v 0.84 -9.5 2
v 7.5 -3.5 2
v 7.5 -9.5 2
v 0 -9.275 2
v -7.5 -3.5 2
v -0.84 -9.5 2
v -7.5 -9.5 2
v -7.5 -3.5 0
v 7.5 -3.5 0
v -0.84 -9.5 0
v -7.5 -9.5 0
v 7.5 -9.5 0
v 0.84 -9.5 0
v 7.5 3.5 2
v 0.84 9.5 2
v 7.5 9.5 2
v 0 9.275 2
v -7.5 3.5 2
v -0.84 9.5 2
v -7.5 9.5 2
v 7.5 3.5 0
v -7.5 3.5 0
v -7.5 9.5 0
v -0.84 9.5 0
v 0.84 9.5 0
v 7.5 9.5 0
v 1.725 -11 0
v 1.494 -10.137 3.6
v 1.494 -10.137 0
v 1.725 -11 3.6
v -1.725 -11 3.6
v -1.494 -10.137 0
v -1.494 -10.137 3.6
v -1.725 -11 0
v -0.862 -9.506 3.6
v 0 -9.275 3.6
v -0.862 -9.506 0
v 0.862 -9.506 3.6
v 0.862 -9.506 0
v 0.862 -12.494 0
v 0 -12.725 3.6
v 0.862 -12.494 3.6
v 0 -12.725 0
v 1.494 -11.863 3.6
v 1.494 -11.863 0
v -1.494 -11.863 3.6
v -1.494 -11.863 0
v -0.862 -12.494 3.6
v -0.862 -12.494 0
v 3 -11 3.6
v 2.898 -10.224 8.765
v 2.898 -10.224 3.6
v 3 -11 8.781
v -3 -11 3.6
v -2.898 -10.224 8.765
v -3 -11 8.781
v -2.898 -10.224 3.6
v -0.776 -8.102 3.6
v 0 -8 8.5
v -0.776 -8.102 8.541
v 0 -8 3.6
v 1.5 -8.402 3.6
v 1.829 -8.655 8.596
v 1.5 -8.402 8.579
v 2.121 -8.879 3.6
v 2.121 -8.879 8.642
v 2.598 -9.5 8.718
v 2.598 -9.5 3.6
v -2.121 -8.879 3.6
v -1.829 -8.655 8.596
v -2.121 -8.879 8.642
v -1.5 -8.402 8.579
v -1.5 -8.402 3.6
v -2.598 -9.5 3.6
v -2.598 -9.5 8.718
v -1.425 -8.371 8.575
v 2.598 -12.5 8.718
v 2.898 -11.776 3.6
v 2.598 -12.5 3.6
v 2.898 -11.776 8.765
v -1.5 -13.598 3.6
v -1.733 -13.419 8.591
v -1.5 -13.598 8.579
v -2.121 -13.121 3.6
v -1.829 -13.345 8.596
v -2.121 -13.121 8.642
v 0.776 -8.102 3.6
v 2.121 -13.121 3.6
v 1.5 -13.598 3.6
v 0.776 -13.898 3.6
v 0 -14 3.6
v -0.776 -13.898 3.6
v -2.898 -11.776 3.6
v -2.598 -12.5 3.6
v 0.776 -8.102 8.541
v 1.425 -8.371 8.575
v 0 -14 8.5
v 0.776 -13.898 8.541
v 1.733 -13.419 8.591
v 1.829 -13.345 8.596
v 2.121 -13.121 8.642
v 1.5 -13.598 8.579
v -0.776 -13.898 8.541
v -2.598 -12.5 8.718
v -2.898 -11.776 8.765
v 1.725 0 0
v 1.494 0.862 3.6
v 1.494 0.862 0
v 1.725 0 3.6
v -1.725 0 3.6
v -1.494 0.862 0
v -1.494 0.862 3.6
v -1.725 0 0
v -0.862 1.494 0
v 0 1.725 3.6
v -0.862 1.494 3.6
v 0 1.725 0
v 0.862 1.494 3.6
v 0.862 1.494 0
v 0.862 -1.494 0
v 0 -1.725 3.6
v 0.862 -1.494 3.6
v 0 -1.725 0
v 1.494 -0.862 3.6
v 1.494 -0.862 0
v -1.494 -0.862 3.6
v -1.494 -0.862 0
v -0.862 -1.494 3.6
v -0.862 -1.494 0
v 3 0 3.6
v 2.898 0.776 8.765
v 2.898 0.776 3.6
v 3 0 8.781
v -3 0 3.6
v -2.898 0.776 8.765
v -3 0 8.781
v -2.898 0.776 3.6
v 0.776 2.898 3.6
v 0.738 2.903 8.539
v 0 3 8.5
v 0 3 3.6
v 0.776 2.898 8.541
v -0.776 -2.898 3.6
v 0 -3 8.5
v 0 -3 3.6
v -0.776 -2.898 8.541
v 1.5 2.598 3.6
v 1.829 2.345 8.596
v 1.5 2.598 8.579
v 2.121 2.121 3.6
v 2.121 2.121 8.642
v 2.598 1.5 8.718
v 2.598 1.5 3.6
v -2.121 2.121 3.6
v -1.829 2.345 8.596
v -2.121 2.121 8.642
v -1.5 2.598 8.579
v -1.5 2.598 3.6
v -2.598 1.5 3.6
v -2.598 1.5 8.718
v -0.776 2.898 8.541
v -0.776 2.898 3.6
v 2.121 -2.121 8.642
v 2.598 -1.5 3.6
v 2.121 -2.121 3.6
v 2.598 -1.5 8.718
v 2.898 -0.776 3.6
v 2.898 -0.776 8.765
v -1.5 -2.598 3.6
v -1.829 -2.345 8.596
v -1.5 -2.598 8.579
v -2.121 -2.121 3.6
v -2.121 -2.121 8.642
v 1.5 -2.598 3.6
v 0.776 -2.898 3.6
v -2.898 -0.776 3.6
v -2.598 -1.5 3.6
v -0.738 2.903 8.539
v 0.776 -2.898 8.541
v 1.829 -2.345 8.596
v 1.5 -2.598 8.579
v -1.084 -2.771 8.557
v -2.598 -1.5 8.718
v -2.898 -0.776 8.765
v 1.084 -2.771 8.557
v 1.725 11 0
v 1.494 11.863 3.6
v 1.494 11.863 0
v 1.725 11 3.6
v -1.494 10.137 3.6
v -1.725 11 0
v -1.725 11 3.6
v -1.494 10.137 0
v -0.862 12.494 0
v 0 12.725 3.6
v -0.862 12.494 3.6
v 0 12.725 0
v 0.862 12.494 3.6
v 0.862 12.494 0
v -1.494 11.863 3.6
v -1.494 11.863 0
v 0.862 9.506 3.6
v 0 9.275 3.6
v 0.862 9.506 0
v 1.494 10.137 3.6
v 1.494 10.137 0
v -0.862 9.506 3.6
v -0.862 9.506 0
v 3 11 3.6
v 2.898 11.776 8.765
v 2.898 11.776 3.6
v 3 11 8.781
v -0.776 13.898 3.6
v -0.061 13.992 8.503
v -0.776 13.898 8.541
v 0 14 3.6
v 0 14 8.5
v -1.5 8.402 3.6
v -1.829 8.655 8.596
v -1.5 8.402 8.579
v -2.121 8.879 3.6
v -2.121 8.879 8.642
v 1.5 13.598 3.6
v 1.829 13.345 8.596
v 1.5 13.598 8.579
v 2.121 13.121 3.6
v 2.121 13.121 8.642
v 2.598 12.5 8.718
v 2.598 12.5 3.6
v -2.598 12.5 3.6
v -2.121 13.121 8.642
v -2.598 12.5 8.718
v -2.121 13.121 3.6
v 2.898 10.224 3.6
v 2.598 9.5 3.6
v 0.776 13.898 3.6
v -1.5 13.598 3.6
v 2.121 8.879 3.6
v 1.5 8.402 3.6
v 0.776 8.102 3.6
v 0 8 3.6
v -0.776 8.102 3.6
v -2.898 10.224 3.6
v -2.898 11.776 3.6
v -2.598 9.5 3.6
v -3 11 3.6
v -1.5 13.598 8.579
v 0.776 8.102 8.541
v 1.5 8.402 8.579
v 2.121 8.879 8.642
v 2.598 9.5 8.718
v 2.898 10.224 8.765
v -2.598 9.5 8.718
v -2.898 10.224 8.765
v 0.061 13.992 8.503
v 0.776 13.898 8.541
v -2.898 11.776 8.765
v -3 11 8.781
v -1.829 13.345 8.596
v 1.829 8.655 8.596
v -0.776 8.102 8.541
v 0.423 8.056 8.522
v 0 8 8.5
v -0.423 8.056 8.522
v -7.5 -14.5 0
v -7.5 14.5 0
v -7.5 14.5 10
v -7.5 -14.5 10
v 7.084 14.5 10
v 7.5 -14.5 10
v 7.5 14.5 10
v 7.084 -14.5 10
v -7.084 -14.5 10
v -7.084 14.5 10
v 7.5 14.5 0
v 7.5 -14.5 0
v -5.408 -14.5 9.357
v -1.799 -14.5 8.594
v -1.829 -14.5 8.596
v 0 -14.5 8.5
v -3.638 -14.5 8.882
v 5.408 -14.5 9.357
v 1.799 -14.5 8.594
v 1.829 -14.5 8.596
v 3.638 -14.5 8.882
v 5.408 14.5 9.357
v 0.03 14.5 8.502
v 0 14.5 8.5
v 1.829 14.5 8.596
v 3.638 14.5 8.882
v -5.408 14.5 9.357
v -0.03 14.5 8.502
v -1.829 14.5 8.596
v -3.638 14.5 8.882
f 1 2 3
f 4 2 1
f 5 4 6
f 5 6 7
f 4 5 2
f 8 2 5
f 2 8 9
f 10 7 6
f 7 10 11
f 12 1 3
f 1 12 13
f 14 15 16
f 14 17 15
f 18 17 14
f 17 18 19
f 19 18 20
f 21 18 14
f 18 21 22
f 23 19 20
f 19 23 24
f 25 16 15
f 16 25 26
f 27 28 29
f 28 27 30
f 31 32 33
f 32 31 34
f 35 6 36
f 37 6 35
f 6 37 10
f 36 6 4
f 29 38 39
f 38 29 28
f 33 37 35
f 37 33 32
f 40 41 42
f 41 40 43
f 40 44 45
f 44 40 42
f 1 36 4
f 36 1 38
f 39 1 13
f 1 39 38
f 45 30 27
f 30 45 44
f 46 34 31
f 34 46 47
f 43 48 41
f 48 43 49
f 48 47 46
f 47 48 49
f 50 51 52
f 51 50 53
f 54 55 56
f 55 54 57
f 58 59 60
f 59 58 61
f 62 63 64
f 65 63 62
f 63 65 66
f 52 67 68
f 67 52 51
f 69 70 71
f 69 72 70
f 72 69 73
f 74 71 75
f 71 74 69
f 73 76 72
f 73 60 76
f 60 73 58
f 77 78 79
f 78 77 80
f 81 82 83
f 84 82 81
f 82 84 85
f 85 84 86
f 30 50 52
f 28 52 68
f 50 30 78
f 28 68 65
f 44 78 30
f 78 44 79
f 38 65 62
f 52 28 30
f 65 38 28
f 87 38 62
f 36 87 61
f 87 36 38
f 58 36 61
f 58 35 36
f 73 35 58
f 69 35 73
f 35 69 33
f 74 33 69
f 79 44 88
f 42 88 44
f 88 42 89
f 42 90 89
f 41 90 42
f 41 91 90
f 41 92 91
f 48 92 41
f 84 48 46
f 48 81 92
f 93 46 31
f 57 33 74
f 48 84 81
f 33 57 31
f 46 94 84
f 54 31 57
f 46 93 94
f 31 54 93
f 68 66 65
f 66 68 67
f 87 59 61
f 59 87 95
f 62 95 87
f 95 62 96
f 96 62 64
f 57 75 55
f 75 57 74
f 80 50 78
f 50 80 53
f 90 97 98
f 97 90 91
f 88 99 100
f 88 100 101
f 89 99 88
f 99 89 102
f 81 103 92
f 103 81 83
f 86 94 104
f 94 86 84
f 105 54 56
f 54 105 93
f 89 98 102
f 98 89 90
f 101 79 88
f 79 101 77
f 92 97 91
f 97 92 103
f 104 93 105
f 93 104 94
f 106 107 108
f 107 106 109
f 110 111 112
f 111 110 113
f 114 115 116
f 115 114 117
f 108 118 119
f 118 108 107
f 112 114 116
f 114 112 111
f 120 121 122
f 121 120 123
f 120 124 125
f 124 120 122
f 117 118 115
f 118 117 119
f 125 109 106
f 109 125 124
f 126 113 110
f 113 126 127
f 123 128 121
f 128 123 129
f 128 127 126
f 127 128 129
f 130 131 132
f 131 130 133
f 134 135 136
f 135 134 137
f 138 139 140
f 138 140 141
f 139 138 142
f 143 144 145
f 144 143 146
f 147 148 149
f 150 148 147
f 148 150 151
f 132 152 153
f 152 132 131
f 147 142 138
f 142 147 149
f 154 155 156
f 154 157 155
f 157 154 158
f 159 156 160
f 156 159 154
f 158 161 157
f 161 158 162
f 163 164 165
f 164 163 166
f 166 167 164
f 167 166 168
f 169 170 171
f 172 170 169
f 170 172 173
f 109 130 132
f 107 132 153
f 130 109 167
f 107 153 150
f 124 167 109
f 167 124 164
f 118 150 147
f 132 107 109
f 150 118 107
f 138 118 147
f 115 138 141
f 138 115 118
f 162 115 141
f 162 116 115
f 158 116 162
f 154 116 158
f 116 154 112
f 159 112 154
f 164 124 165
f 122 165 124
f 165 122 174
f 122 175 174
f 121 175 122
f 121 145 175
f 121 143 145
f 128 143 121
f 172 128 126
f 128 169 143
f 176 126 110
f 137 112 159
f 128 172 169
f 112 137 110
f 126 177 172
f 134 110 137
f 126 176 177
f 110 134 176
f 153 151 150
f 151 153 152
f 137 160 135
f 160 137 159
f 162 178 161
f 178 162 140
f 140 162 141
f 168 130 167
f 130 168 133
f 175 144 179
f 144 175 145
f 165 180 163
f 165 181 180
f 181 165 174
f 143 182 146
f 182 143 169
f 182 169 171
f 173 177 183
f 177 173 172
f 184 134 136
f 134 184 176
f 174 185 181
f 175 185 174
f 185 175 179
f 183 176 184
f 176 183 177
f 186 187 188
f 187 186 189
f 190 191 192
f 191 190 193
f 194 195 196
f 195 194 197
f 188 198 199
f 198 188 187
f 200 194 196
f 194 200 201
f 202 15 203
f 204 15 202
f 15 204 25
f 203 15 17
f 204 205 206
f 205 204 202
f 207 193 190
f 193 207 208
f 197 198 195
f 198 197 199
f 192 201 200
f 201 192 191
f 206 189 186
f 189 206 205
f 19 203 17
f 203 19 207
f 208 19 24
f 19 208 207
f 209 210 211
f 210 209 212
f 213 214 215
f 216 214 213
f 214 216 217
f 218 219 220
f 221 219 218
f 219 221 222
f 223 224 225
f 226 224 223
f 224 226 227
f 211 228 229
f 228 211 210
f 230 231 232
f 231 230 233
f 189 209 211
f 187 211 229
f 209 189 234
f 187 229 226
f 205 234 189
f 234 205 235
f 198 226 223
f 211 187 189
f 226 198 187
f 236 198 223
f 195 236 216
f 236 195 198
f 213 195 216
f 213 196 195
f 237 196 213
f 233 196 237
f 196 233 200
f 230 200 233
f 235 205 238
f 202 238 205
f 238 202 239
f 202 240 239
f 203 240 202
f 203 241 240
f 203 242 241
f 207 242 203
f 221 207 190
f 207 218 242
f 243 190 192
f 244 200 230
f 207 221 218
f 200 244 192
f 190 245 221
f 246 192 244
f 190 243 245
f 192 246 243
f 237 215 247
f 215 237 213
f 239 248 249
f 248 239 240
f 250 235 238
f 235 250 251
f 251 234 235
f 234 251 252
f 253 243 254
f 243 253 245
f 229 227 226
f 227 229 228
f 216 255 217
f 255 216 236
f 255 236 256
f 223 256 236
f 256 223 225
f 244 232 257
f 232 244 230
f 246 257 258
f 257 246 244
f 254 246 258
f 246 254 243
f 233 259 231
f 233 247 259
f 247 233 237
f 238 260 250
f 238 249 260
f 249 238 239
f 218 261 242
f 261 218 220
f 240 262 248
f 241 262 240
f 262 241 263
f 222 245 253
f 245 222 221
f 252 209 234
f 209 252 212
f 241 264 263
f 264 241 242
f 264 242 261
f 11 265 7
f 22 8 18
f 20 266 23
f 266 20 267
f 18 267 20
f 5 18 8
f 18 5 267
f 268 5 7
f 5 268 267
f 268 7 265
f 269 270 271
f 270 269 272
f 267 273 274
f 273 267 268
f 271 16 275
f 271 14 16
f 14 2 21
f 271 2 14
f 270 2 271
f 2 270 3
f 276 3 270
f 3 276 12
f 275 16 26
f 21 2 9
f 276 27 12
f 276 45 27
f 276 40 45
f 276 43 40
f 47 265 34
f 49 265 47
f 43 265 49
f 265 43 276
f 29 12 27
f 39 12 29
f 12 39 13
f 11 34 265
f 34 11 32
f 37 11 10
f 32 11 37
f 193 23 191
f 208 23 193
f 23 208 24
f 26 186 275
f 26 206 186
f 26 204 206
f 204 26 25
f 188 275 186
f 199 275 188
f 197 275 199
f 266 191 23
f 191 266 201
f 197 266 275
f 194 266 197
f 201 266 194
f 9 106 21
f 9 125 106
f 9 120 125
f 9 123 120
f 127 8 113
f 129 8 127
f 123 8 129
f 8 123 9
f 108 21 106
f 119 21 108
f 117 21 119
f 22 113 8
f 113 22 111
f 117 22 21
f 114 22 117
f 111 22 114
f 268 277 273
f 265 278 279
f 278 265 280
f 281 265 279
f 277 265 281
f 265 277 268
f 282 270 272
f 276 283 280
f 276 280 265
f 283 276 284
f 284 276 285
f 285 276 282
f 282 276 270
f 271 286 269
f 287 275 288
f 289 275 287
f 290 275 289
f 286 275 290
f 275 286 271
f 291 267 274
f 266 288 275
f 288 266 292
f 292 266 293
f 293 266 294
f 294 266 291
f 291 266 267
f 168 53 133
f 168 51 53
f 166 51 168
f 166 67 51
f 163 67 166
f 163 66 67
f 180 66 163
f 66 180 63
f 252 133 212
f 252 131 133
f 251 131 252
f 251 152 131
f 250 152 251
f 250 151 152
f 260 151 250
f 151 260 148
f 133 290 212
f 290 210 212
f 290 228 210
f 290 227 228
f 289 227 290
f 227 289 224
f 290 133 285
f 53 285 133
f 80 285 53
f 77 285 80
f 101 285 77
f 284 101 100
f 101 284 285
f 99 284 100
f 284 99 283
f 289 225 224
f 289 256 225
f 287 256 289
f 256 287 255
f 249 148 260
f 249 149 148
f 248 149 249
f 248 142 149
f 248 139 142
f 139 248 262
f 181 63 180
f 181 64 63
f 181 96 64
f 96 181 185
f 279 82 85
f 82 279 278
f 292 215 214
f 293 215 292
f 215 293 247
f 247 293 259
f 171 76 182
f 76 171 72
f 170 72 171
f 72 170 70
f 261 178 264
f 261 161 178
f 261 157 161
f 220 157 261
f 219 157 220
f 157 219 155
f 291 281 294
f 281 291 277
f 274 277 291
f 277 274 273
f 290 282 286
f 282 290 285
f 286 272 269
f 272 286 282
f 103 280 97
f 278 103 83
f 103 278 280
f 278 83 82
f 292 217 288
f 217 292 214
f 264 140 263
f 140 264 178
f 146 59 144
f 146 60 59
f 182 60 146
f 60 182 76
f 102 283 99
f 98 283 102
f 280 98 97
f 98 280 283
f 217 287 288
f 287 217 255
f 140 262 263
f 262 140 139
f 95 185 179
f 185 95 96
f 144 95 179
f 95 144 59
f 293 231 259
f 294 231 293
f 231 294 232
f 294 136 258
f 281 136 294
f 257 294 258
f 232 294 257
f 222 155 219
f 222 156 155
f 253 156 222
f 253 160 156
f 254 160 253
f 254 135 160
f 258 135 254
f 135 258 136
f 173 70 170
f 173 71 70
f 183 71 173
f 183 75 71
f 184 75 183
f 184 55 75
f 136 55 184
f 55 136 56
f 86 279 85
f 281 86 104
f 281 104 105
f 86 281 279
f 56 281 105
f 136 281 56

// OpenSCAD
// file: configuration.scad
/**
 * @author Johann Rocholl <johann@rocholl.net>
 * @license GPL-3.0
 */

// Increase this if your slicer or printer make holes too tight.
extra_radius = 0.1;

// OD = outside diameter, corner to corner.
m3_nut_od = 6.1;
m3_nut_radius = m3_nut_od/2 + 0.2 + extra_radius;
m3_washer_radius = 3.5 + extra_radius;

// Major diameter of metric 3mm thread.
m3_major = 2.85;
m3_radius = m3_major/2 + extra_radius;
m3_wide_radius = m3_major/2 + extra_radius + 0.2;

// NEMA17 stepper motors.
motor_shaft_diameter = 5;
motor_shaft_radius = motor_shaft_diameter/2 + extra_radius;

// Frame brackets. M3x8mm screws work best with 3.6 mm brackets.
thickness = 3.6;

// OpenBeam or Misumi. Currently only 15x15 mm, but there is a plan
// to make models more parametric and allow 20x20 mm in the future.
extrusion = 15;

// Placement for the NEMA17 stepper motors.
motor_offset = 44;
motor_length = 47;
// main file
/**
 * @author Johann Rocholl <johann@rocholl.net>
 * @license GPL-3.0
 */

include <configuration.scad>;

module frame_extruder() {
  difference() {
    union() {
      translate([0, 0, 5]) cube([15, 29, 10], center=true);
    }
    translate([0, 0, 26]) rotate([90, 0, 0])
      cylinder(r=17.5, h=30, center=true, $fn=60);
    for (y = [-6.5, 6.5]) {
      translate([0, y, 0])
        cube([20, 6, 4], center=true);
    }
    for (y = [-11, 0, 11]) {
      translate([0, y, 0])
        cylinder(r=m3_wide_radius, h=20, center=true, $fn=12);
      translate([0, y, thickness])
        # cylinder(r=3, h=10, $fn=24);
    }
  }
}

frame_extruder();
